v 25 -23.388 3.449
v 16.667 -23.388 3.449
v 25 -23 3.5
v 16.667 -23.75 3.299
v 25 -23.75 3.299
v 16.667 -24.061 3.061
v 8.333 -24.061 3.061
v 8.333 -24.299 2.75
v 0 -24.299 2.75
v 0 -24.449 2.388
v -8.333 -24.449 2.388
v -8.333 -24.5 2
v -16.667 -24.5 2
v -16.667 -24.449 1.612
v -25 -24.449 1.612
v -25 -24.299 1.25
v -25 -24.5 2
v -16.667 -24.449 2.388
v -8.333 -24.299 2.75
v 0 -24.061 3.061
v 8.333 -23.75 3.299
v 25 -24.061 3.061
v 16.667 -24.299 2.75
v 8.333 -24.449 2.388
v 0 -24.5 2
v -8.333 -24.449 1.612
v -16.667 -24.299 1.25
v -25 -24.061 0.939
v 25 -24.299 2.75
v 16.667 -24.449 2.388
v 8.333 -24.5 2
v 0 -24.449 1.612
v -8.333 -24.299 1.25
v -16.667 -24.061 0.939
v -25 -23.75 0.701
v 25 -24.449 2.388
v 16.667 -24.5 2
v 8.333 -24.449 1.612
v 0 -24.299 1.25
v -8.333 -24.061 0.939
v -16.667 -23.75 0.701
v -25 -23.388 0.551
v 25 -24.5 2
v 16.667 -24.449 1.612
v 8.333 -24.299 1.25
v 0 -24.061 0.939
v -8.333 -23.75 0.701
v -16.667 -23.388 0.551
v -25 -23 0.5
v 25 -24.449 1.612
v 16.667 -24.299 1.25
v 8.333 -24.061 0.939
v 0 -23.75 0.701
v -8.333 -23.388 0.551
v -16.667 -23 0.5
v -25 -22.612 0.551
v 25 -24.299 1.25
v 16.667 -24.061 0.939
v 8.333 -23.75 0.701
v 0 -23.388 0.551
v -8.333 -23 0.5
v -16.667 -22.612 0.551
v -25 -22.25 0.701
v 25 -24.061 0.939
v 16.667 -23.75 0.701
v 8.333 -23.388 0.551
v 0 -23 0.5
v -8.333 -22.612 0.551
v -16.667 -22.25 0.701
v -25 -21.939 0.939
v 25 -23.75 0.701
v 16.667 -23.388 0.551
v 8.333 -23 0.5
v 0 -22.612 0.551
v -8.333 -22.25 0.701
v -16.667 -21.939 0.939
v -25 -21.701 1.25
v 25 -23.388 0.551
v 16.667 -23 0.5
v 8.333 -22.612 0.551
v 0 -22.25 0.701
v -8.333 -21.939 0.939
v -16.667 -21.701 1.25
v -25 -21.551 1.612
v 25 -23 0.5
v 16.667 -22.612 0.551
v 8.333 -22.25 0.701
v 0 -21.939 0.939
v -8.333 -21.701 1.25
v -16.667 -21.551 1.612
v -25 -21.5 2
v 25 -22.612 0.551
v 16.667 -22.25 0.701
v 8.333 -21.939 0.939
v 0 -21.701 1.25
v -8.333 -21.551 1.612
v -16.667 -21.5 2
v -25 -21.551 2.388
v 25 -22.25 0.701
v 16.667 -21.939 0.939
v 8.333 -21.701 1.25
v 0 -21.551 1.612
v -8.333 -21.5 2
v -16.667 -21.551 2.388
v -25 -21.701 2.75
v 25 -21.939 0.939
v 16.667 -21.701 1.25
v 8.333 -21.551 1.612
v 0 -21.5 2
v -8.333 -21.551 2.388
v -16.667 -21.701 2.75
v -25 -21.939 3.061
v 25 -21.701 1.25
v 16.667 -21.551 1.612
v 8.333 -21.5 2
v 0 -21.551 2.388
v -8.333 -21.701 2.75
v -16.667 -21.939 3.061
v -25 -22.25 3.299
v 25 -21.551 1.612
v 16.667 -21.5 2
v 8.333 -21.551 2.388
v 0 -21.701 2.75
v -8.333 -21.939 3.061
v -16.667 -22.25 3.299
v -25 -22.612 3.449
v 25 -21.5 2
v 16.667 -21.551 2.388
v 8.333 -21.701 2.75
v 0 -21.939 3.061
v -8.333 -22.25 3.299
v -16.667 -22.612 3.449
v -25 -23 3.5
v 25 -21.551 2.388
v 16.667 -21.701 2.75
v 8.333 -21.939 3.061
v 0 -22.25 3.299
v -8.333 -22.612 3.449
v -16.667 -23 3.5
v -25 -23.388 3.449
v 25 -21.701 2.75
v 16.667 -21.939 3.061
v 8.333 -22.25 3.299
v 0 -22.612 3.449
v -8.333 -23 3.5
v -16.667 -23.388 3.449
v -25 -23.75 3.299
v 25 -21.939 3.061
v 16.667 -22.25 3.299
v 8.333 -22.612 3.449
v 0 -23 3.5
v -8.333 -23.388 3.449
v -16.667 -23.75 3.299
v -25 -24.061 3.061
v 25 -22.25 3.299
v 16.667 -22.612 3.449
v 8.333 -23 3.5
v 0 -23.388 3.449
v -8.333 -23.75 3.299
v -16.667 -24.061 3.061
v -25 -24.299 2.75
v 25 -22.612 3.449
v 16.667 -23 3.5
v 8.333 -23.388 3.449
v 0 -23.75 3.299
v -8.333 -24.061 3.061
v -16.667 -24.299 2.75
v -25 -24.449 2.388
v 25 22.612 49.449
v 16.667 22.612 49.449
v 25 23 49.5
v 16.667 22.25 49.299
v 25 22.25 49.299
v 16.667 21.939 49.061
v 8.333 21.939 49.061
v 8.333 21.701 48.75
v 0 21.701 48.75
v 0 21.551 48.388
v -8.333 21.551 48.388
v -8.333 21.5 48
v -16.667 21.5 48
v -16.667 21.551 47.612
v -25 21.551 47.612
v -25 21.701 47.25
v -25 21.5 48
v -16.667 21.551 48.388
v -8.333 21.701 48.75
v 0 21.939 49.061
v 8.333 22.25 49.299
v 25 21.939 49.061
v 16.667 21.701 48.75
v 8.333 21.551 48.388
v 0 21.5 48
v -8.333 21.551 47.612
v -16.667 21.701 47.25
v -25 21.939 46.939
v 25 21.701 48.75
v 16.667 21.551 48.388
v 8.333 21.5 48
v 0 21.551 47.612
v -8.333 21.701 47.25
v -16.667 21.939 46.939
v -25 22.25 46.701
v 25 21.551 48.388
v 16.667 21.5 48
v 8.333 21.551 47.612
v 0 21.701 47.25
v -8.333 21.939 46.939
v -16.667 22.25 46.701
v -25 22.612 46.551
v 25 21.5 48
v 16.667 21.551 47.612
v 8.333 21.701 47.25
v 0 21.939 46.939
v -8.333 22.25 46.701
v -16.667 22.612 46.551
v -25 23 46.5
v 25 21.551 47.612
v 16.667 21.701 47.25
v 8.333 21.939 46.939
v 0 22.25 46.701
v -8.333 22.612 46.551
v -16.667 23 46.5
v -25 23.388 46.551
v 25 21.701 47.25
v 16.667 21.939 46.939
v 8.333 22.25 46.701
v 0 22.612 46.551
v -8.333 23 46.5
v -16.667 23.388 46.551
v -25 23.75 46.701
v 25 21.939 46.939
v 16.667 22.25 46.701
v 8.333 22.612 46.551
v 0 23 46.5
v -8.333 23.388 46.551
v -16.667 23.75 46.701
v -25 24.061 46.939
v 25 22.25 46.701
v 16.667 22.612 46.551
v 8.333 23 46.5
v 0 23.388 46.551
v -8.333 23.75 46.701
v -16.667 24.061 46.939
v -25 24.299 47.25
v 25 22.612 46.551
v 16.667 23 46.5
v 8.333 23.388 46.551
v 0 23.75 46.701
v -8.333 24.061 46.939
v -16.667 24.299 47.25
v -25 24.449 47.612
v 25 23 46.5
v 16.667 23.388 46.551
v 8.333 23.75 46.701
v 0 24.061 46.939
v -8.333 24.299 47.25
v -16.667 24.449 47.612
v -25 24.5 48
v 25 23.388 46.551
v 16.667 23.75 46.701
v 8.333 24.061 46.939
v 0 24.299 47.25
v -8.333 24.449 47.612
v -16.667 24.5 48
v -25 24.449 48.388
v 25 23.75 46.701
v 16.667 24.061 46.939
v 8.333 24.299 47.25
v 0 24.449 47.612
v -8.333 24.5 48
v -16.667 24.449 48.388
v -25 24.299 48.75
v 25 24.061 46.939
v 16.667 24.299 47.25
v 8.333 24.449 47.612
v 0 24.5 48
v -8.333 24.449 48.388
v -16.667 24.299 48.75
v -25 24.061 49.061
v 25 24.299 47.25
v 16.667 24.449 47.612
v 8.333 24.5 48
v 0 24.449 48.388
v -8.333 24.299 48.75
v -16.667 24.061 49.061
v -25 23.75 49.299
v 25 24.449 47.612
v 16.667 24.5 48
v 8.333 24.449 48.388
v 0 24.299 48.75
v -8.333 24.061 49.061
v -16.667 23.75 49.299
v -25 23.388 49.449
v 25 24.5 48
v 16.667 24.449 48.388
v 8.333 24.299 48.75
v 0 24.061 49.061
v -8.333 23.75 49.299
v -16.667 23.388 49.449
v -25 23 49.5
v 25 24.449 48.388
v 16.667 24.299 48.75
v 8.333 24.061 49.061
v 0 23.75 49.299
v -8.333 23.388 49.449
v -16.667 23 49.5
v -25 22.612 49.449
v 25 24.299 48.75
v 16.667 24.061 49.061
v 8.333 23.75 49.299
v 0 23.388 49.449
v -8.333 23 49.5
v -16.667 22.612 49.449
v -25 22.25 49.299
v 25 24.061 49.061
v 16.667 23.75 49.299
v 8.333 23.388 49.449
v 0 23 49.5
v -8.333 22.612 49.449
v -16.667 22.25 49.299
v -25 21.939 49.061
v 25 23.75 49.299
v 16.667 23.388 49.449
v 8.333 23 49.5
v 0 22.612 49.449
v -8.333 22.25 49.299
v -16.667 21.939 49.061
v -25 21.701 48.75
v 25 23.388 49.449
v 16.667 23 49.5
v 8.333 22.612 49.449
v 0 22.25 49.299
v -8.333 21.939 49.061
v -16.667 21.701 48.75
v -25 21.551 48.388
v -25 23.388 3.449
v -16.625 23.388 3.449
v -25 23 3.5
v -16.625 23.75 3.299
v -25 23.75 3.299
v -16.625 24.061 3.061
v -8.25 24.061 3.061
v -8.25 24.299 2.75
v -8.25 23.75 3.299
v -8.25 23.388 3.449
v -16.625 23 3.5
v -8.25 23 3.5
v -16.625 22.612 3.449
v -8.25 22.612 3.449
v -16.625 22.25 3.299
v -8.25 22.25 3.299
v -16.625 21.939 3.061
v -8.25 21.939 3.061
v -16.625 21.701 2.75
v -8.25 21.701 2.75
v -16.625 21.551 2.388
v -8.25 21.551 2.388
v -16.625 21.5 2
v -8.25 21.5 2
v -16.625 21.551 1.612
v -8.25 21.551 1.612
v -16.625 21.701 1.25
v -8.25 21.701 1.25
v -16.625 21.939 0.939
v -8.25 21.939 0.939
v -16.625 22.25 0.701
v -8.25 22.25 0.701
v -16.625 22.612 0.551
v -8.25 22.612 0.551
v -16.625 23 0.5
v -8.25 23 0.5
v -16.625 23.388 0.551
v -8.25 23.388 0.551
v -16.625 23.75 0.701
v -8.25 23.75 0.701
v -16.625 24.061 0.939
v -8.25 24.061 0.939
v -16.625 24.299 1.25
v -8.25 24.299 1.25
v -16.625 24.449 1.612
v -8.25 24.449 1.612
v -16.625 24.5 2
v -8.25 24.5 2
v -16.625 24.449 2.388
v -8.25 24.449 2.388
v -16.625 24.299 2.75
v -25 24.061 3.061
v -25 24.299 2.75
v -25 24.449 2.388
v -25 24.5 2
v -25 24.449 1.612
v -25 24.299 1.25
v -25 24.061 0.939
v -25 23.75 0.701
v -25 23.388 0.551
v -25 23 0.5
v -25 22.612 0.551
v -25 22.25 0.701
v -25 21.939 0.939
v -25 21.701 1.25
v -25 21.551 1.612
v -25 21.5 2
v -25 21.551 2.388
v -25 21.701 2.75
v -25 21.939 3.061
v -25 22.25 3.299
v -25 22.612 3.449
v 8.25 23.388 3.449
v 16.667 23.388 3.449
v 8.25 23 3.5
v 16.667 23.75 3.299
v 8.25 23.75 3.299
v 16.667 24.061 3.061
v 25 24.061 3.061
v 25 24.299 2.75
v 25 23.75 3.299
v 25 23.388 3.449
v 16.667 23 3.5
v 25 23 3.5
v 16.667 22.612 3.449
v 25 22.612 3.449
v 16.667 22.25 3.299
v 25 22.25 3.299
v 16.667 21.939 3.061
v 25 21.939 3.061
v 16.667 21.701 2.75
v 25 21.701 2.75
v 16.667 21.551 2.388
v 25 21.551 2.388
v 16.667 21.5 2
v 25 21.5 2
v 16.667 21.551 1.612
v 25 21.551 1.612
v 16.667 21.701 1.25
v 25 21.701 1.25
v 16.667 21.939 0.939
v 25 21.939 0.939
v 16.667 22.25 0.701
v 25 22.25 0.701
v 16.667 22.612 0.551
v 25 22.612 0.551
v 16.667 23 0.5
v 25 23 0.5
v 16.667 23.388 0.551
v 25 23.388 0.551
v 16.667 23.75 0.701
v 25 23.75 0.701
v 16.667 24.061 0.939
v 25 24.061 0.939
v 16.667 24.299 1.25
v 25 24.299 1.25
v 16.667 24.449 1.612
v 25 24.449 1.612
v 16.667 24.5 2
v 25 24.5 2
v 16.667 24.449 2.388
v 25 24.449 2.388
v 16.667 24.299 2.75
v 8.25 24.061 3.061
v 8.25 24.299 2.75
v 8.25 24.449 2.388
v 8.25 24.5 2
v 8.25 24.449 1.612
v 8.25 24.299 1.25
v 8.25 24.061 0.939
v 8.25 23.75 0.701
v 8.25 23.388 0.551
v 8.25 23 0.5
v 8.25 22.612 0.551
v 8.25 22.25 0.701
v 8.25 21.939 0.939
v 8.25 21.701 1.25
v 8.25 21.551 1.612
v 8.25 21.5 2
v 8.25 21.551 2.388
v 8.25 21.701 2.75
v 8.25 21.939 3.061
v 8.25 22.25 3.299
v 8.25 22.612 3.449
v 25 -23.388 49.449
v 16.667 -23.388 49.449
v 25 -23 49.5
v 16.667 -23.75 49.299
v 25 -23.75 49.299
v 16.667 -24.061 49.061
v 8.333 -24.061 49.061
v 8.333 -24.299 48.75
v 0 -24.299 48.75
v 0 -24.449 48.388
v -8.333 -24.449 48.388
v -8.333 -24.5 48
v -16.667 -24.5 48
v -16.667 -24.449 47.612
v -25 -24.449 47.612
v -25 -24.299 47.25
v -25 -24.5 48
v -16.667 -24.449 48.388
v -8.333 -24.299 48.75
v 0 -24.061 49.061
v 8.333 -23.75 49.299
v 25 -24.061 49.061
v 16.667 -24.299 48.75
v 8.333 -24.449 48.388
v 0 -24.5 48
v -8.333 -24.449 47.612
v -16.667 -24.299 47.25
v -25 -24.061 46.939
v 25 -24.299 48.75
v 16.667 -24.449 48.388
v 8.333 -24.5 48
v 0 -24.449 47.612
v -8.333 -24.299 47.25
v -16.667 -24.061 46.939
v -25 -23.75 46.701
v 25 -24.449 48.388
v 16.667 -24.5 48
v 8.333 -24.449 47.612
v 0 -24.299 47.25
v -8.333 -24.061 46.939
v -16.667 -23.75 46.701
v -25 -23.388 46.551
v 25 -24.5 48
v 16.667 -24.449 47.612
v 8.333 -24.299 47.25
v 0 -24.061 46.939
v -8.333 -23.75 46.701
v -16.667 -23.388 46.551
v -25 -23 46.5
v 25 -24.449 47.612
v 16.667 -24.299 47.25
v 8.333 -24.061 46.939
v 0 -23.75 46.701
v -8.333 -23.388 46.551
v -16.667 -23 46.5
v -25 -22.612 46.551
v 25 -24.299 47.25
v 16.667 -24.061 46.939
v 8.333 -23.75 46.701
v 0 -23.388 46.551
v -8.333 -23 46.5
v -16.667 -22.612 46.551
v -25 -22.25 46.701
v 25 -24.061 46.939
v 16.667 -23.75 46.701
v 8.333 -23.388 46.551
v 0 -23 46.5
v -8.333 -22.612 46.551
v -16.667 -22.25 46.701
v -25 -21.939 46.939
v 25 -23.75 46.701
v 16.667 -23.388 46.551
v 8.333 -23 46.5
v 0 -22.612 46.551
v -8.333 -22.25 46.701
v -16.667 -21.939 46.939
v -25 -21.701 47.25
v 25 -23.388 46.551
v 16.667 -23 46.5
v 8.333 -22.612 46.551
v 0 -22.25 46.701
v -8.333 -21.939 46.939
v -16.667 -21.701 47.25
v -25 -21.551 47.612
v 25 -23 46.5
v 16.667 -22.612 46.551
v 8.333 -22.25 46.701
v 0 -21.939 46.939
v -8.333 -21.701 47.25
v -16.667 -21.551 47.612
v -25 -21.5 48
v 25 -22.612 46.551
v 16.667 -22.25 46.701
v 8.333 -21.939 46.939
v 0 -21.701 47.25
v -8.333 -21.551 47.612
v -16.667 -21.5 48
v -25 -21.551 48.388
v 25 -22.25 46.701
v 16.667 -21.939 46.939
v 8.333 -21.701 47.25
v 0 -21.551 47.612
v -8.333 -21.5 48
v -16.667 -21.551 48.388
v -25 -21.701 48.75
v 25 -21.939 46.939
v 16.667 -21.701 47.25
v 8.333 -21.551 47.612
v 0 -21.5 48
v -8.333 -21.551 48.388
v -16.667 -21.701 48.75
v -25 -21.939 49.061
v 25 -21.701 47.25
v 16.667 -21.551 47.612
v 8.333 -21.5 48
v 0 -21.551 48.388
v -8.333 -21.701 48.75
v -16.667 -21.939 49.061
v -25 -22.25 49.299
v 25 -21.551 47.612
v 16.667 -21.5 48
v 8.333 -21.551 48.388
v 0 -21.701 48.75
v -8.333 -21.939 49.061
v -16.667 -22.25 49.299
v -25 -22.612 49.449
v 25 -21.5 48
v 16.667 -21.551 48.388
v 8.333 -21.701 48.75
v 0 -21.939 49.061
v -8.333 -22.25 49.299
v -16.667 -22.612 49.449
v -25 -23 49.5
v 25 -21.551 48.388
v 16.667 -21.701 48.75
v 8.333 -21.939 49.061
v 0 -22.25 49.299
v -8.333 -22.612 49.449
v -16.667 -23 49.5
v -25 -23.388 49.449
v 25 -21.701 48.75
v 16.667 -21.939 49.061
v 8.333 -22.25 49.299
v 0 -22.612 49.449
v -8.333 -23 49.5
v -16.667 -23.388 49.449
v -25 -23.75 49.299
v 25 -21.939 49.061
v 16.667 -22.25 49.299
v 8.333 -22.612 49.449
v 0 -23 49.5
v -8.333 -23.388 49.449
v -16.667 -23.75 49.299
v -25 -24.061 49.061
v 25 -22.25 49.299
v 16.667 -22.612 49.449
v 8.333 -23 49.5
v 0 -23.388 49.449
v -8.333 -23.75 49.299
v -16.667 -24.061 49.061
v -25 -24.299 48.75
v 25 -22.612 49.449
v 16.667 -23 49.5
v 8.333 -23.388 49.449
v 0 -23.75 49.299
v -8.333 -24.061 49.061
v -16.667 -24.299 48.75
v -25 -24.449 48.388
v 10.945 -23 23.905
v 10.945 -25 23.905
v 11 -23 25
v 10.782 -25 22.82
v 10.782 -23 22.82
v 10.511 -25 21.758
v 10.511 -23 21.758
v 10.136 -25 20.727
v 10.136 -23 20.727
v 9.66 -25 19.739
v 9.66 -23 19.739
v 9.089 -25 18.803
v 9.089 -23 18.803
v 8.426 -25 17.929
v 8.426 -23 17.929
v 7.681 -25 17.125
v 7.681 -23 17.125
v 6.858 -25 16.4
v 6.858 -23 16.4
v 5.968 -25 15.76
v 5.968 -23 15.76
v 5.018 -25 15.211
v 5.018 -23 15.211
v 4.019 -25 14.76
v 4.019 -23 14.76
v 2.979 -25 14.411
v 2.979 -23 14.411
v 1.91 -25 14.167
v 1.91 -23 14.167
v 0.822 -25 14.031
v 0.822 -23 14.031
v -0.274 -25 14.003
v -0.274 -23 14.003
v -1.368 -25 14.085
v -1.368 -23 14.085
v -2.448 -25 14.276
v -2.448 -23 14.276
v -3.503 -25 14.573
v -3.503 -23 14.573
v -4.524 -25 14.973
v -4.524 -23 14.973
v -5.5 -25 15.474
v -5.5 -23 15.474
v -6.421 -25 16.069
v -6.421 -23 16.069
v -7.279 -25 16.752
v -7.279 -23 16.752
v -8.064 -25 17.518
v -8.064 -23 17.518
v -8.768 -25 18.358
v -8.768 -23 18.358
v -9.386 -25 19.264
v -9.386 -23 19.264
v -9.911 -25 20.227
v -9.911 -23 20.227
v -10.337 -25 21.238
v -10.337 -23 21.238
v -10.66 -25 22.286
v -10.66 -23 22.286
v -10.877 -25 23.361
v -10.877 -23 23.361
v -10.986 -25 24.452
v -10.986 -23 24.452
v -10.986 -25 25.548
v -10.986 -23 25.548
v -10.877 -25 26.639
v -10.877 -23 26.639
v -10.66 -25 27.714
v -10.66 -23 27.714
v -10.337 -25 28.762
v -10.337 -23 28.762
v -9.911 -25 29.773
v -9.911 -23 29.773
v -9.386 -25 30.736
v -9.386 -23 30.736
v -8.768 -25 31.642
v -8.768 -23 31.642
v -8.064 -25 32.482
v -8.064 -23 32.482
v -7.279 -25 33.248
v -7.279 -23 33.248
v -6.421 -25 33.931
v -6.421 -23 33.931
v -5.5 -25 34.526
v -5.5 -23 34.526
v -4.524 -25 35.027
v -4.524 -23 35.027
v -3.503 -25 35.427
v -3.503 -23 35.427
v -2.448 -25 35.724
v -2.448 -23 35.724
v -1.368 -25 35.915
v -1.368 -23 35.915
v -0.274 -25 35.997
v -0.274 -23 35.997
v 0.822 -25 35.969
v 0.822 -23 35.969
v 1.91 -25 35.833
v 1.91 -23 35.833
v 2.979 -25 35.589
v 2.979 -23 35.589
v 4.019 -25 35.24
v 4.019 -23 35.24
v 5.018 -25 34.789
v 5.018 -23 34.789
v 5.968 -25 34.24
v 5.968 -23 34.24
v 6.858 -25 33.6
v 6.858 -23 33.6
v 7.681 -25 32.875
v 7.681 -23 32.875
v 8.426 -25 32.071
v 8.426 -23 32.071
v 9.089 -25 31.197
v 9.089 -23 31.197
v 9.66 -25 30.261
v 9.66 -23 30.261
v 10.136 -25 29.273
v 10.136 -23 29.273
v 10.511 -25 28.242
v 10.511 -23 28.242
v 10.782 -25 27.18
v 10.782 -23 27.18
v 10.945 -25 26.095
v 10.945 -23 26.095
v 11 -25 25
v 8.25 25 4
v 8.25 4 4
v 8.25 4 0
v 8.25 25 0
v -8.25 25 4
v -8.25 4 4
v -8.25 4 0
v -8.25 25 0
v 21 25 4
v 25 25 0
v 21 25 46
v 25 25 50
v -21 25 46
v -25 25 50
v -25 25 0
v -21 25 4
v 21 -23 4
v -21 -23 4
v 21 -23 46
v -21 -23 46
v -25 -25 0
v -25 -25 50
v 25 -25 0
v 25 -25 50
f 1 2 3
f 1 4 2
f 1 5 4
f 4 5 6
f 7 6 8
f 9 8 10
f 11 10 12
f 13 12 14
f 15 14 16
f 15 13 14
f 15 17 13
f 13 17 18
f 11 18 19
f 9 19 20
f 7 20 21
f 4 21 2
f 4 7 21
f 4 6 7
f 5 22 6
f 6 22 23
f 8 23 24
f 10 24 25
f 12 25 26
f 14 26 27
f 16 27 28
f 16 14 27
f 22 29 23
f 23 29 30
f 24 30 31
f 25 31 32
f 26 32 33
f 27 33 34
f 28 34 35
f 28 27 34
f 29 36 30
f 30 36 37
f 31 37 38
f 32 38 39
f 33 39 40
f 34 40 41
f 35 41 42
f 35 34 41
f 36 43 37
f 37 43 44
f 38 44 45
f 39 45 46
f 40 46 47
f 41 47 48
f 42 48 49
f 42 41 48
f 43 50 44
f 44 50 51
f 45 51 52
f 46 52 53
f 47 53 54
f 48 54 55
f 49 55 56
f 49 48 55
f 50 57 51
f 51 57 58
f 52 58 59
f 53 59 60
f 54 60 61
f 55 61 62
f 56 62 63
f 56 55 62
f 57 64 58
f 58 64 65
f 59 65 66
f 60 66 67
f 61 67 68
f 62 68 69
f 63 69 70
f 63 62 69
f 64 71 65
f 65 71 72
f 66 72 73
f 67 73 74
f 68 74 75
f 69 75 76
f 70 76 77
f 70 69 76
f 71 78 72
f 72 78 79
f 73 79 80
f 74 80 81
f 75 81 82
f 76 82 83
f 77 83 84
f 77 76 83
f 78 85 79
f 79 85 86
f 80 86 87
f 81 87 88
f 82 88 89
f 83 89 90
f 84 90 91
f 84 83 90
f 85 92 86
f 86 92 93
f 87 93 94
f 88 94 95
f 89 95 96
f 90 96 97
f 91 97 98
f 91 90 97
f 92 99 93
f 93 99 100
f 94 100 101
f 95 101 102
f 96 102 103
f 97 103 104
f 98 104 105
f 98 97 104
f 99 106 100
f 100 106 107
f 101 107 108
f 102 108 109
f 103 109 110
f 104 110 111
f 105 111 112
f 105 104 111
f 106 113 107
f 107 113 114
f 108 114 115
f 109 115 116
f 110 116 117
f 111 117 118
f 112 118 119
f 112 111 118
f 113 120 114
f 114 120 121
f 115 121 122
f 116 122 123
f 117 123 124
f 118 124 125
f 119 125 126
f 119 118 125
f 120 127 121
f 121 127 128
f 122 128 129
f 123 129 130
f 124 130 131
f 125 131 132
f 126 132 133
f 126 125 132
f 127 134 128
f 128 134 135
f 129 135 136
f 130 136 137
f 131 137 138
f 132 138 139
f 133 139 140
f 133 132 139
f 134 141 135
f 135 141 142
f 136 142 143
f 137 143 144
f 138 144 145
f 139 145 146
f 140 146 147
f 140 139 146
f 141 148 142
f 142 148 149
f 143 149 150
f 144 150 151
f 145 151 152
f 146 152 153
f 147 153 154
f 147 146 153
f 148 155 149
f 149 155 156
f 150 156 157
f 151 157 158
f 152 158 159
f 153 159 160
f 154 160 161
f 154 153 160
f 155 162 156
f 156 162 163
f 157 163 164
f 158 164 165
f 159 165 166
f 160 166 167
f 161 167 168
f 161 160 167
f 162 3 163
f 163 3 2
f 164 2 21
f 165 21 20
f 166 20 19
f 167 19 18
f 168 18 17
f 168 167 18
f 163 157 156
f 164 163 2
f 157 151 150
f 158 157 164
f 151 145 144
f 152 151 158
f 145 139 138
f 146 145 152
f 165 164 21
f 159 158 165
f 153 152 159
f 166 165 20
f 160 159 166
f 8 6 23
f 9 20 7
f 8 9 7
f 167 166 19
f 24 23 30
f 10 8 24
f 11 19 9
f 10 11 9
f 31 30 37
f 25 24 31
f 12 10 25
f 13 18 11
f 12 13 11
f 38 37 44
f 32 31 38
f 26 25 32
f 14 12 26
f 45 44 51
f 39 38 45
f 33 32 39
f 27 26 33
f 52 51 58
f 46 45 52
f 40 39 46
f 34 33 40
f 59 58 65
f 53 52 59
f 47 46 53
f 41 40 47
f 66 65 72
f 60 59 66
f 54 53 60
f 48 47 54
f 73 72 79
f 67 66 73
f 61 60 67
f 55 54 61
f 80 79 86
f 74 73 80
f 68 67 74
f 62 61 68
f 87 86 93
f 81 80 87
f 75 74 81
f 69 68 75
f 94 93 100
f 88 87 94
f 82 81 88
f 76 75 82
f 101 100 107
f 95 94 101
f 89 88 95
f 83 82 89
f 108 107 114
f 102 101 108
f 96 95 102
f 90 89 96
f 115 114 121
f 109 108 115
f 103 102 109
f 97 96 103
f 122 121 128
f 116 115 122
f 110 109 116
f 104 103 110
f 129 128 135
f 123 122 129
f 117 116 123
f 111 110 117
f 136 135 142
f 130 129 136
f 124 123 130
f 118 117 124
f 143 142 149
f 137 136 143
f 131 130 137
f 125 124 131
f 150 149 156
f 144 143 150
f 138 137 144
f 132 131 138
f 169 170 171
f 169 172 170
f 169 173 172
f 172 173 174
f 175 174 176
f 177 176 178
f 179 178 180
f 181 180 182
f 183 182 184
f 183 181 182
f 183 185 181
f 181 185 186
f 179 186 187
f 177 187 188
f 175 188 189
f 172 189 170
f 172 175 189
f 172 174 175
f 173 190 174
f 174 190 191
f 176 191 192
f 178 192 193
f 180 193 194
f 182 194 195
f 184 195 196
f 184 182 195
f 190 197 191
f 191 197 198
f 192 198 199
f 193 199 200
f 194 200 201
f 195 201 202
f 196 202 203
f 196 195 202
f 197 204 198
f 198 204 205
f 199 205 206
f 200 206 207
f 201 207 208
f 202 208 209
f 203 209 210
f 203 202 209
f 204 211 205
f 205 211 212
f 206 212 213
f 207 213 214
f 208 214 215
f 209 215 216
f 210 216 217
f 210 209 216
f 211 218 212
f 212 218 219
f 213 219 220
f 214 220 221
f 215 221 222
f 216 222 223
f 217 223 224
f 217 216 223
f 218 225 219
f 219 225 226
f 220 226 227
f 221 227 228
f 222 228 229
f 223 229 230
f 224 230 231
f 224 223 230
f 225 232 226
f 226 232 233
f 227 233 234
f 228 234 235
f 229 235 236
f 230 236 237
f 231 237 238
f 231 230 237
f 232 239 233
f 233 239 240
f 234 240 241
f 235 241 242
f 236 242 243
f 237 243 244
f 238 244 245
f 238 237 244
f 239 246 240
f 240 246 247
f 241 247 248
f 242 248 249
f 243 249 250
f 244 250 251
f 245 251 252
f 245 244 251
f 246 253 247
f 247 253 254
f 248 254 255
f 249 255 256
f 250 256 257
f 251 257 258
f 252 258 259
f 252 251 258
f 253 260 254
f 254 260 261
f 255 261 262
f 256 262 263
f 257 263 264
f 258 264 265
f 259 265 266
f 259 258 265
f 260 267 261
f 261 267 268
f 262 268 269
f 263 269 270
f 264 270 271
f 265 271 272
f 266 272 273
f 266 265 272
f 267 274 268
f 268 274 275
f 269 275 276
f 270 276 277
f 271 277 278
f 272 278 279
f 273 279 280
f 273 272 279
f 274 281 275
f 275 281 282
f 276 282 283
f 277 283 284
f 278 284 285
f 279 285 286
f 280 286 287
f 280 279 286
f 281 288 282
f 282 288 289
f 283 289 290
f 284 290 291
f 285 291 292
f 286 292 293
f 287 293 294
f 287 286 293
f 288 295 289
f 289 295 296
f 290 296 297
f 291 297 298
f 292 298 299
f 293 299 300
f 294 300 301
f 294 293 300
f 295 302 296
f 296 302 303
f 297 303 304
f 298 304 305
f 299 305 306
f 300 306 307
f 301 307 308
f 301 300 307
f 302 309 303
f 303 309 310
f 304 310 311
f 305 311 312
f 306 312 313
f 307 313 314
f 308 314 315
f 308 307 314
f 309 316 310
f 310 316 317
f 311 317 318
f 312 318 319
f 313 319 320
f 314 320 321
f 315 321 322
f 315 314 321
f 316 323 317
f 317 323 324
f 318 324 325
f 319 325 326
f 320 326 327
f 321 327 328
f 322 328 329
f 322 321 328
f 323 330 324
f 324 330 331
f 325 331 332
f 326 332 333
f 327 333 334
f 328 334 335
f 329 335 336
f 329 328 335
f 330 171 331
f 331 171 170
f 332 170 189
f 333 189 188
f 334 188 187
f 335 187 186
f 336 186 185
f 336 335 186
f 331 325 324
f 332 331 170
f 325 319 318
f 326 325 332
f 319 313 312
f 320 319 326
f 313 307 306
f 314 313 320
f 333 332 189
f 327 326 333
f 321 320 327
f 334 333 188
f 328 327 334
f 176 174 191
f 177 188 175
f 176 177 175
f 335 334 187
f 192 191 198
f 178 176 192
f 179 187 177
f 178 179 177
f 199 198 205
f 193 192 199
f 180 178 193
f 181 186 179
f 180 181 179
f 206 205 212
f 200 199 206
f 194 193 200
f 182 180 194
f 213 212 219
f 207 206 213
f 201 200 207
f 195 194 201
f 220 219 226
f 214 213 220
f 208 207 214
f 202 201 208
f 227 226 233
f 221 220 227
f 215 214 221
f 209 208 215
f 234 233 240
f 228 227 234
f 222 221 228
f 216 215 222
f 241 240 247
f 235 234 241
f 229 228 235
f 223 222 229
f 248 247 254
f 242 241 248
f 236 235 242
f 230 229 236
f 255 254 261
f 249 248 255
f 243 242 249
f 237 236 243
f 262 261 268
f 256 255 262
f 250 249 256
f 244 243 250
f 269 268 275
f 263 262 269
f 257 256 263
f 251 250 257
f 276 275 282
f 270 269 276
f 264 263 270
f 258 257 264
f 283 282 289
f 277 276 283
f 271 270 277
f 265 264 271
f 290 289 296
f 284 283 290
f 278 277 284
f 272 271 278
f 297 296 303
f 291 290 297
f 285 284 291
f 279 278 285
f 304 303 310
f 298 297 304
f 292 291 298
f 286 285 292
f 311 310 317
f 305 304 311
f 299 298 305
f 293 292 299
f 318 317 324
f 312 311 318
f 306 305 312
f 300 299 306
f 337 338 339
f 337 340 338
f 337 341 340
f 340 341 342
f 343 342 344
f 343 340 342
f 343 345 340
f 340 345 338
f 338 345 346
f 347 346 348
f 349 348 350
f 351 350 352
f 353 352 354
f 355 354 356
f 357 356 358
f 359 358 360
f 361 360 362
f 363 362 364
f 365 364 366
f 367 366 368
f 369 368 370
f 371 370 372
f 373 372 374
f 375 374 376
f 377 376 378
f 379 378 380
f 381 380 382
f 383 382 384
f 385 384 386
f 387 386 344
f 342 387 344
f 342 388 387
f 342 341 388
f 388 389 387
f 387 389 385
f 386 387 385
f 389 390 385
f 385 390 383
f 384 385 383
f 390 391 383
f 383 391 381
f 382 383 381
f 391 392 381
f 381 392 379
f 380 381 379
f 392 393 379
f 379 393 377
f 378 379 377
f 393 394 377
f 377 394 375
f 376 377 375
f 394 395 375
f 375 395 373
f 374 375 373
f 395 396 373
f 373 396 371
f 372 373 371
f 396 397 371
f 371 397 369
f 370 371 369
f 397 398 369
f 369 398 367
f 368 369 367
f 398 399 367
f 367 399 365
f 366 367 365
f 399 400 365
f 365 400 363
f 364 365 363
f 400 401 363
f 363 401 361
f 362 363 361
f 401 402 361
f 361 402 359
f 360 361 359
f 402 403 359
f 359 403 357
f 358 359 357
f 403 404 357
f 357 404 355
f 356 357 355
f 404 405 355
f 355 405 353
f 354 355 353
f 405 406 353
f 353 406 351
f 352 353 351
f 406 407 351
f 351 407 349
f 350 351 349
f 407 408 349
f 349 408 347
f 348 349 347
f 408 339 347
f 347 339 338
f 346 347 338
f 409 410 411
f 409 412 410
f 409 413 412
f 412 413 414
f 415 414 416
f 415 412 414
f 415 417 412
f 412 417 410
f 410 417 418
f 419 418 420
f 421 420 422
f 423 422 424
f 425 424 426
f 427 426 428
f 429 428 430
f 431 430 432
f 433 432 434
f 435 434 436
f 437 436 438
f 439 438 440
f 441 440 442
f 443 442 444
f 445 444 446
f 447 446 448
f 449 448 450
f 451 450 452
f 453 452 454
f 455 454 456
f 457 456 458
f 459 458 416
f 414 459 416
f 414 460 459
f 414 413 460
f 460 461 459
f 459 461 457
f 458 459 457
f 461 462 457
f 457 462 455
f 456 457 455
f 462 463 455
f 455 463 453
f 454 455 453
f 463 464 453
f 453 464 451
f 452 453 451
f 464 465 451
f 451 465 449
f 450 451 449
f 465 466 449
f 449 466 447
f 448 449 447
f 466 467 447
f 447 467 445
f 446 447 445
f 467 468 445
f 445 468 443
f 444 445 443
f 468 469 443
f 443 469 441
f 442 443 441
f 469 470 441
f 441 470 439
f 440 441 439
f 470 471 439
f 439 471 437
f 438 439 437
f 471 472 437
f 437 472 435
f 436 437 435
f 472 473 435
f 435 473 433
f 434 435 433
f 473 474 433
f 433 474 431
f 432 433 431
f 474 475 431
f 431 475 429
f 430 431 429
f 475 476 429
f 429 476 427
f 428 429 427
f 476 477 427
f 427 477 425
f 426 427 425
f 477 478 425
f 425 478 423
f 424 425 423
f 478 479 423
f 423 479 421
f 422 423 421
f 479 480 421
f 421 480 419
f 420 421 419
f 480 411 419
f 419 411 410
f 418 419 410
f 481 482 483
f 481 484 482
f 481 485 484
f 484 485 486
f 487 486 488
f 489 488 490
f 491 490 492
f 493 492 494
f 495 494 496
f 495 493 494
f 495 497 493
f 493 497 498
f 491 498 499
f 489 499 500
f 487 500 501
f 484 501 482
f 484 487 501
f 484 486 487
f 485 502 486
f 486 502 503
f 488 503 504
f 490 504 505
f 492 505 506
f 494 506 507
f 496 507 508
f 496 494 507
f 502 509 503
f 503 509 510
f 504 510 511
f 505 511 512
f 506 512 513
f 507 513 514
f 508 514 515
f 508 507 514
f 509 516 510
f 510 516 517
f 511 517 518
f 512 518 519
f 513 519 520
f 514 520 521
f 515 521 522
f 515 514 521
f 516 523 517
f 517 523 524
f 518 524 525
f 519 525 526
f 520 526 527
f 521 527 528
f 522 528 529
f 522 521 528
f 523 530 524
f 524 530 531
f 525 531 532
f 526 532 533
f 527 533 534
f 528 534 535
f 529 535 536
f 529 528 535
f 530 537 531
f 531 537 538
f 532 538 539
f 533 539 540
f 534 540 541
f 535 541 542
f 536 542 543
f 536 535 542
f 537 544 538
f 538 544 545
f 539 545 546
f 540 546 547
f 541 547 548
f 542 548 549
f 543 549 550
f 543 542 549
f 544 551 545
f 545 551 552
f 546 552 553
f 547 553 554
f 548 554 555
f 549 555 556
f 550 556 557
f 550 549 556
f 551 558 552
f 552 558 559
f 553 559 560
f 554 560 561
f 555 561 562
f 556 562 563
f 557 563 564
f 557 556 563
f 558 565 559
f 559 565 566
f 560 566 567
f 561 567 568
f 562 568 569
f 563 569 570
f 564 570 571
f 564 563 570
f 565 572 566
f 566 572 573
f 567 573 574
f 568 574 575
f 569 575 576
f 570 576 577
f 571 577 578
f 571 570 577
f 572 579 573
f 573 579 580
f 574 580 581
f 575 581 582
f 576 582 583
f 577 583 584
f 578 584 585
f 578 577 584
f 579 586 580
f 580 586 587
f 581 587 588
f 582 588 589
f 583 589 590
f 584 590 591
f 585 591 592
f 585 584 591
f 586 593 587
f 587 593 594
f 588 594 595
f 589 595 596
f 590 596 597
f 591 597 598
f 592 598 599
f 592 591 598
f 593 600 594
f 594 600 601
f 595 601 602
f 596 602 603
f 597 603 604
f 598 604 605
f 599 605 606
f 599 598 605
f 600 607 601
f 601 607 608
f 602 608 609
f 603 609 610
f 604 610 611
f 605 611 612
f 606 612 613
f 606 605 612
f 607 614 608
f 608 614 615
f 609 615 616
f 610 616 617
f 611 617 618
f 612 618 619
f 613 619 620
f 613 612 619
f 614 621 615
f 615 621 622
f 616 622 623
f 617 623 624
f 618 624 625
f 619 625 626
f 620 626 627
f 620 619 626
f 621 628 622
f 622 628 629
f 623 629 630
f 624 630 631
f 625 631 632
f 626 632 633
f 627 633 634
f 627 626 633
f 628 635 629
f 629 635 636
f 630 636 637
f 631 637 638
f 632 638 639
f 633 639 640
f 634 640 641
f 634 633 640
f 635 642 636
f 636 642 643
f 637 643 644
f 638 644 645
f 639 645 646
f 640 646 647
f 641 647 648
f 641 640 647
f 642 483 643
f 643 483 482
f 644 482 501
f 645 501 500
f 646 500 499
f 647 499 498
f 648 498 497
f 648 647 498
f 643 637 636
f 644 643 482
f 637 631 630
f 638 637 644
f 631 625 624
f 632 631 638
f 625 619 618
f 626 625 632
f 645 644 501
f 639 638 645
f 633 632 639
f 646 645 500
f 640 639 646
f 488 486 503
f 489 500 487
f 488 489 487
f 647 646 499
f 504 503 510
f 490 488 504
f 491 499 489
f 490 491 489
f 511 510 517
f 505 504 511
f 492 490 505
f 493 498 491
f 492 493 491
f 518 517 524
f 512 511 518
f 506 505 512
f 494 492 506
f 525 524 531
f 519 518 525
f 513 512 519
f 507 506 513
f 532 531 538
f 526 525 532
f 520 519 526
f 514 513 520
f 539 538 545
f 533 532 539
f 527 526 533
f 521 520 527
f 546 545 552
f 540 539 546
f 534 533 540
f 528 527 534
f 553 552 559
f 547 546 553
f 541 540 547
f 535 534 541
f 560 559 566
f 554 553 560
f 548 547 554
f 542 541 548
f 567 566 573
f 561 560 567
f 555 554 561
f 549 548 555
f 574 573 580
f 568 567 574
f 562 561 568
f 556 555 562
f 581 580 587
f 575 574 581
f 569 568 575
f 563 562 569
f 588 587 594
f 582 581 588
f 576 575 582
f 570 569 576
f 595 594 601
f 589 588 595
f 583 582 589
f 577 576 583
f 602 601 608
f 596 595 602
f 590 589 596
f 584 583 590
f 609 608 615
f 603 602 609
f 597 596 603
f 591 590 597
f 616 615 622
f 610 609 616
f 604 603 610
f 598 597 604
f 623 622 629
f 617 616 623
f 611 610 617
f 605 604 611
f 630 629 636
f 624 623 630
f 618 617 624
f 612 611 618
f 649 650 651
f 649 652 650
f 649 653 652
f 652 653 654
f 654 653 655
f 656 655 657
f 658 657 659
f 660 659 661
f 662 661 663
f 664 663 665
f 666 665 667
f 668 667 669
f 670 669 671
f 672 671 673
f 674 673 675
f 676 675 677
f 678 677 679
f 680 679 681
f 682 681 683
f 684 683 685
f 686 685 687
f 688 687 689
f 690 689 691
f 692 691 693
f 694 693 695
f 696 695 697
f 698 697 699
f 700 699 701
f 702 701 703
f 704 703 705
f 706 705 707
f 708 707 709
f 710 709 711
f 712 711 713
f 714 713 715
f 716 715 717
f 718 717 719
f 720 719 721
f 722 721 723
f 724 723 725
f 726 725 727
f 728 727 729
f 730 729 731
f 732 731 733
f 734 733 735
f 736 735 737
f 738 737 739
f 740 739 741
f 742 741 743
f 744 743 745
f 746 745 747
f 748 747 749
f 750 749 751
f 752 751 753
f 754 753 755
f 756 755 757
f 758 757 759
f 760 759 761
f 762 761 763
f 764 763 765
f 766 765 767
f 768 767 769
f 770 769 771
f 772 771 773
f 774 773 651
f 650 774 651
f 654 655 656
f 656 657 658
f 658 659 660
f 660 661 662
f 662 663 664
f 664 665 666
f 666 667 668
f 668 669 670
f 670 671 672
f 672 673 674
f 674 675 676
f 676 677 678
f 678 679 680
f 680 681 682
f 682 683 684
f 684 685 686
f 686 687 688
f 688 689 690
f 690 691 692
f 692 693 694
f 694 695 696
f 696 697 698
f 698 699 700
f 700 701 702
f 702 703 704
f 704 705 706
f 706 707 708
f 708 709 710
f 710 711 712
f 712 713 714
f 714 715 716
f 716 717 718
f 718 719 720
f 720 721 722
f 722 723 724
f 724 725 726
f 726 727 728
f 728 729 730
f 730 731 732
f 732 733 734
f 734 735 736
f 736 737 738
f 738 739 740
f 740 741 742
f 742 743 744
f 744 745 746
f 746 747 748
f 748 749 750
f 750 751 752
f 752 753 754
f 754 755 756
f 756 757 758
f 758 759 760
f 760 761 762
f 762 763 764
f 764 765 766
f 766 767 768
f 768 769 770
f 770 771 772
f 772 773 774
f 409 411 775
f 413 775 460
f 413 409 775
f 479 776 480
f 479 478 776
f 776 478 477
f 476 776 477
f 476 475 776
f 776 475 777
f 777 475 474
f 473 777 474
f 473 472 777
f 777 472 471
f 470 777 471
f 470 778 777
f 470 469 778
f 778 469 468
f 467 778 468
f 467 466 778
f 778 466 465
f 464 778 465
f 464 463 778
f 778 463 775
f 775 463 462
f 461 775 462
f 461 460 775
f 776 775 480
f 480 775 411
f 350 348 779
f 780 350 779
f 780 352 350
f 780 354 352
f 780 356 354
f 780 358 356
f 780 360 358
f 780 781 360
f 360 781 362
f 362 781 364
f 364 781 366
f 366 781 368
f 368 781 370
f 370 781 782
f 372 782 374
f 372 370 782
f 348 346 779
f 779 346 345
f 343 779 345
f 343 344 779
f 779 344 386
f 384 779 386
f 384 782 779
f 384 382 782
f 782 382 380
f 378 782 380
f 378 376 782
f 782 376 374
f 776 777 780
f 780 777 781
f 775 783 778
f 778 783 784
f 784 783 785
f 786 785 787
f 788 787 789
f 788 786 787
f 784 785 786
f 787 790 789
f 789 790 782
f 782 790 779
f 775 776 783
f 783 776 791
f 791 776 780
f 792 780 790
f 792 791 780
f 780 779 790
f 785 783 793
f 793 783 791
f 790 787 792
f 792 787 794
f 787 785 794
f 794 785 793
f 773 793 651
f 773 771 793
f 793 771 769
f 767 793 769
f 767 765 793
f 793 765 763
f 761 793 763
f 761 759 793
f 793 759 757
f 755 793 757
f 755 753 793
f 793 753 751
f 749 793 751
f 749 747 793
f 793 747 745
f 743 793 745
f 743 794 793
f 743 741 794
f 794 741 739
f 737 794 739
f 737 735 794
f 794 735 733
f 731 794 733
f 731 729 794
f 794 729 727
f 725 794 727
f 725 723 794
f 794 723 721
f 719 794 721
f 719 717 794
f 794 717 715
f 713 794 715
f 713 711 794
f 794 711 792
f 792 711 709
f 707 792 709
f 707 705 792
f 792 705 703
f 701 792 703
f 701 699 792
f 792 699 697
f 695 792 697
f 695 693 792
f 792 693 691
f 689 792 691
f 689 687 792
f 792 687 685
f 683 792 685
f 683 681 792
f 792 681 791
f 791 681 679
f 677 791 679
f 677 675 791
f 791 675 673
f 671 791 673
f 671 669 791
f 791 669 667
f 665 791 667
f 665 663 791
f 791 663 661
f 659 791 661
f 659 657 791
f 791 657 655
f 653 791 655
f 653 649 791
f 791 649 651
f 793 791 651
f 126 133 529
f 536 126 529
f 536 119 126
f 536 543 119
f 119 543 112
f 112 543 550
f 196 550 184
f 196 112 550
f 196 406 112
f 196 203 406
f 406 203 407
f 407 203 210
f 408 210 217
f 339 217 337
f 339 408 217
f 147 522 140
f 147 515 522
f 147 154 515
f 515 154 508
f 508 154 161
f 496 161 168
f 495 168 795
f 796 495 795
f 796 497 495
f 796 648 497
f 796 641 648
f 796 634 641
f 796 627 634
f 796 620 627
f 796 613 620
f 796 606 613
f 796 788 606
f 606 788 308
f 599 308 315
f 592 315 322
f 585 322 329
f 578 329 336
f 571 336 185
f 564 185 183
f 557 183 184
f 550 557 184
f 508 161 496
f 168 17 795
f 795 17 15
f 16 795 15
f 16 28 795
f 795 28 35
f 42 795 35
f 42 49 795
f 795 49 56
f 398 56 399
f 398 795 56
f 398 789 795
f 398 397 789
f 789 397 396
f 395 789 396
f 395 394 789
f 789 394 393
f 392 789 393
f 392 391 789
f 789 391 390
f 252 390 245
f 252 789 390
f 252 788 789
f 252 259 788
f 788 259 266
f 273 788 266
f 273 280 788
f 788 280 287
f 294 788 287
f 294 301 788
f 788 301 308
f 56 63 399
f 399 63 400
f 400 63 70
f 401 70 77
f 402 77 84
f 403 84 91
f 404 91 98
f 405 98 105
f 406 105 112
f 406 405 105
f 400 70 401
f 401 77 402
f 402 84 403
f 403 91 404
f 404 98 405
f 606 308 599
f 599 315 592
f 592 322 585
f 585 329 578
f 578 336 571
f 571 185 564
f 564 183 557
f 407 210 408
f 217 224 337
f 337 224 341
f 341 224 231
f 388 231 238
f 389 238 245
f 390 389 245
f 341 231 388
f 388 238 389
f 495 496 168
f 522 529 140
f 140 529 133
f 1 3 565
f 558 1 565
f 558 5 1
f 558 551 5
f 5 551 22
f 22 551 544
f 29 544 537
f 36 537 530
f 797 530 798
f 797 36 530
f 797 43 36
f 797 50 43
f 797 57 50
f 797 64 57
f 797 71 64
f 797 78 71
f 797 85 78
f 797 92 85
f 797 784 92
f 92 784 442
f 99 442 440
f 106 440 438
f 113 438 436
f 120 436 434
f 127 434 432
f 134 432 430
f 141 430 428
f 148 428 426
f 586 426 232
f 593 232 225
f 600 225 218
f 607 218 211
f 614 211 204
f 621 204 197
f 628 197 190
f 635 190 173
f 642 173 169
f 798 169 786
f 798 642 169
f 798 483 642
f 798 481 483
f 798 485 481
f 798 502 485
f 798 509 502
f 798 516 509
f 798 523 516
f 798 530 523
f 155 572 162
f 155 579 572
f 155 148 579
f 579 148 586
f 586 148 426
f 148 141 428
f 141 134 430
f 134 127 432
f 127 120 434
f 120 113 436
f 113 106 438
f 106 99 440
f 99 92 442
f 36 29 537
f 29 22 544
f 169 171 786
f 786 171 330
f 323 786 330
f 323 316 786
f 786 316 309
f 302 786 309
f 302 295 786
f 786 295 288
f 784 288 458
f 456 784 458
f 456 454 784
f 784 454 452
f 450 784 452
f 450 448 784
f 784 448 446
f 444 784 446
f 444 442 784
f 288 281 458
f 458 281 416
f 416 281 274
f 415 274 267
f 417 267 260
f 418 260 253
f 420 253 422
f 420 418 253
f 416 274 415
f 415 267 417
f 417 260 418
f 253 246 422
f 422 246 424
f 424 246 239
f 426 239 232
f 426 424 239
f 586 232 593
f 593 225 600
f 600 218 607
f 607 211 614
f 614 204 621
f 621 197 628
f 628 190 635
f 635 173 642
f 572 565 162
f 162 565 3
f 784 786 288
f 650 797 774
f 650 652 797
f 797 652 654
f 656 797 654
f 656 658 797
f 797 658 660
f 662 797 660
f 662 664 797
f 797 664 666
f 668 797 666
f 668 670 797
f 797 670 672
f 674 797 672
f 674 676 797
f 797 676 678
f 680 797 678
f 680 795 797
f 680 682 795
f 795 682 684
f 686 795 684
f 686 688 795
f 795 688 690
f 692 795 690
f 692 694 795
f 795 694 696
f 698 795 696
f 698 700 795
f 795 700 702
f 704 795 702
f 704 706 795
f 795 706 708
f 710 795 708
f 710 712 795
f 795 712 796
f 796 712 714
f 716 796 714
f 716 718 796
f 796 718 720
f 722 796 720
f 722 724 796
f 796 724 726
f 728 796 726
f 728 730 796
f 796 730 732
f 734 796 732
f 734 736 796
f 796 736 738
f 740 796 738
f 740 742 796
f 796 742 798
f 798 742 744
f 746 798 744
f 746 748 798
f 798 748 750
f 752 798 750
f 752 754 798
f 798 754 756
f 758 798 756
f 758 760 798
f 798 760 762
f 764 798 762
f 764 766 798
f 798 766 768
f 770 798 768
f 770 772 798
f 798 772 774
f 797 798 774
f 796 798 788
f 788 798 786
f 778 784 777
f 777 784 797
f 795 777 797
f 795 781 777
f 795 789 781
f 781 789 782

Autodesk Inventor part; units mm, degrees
ref_plane "YZ Plane" through (0, 0, 0) normal (1, 0, 0) x (0, 1, 0)
ref_plane "XZ Plane" through (0, 0, 0) normal (0, 1, 0) x (-1, 0, 0)
ref_plane "XY Plane" through (0, 0, 0) normal (0, 0, 1) x (1, 0, 0)
sketch "Sketch1" plane through (0, 0, 0) normal (0, 0, 1) x (1, 0, 0)
  line L0 (-25, -25) -> (25, -25)
  line L1 (25, -25) -> (25, 25)
  line L2 (25, 25) -> (-25, 25)
  line L3 (-25, 25) -> (-25, -25)
  line L4 (-25, -25) -> (25, 25) construction
  line L5 (25, -25) -> (-25, 25) construction
  point P0 (0, 0)
  dimension "d0" = 50
  dimension "d1" = 50
extrude "Main Block" add sketch "Sketch1" along normal blind 50
sketch "Sketch2" plane through (-25, 25, 0) normal (0, 1, 0) x (1, 0, 0)
  line L0 (0, -50) -> (50, -50) construction
  line L1 (0, 0) -> (50, 0) construction
  line L2 (50, -50) -> (0, 0) construction
  line L3 (46, -46) -> (4, -46)
  line L4 (4, -46) -> (4, -4)
  line L5 (4, -4) -> (46, -4)
  line L6 (46, -4) -> (46, -46)
  line L7 (46, -46) -> (4, -4) construction
  line L8 (4, -46) -> (46, -4) construction
  line L9 (25, -25) -> (25, -46) construction
  point P0 (25, 0)
  dimension "d4" = 42
  dimension "d5" = 42
extrude "Motor Void" cut sketch "Sketch2" against normal blind 48
sketch "Sketch3" plane through (-25, 25, 0) normal (0, 1, 0) x (1, 0, 0)
  line L0 (25, 0) -> (25, -4) construction
  line L1 (4, -4) -> (46, -4) construction
  line L2 (16.75, -4) -> (33.25, -4)
  line L3 (33.25, -4) -> (33.25, 0)
  line L4 (33.25, 0) -> (16.75, 0)
  line L5 (16.75, 0) -> (16.75, -4)
  line L6 (16.75, -4) -> (33.25, 0) construction
  line L7 (33.25, -4) -> (16.75, 0) construction
  point P0 (25, -2)
  dimension "d8" = 16.5
  dimension "d9" = 4
extrude "Cable Void" cut sketch "Sketch3" against normal blind 21
sketch "Sketch4" plane through (-25, -25, 0) normal (0, -1, 0) x (1, 0, 0)
  line L0 (0, 0) -> (0, 50) construction
  line L1 (50, 50) -> (0, 50) construction
  line L2 (0, 0) -> (50, 50) construction
  circle A0 centre (25, 25) radius 11
  point P0 (25, 0)
  dimension "d12" = 22
extrude "Raised Void" cut sketch "Sketch4" against normal blind 2
sketch "Sketch5" plane through (-25, -25, 0) normal (-1, 0, 0) x (0, 0, 1)
  line L0 (0, 0) -> (0, 50) construction
  line L1 (4, 50) -> (4, 2) construction
  line L2 (0, 50) -> (4, 50) construction
  line L3 (0, 50) -> (50, 50) construction
  line L4 (46, 2) -> (4, 2) construction
  line L5 (4, 50) -> (4, 2) construction
  line L6 (4, 2) -> (46, 2) construction
  line L7 (46, 50) -> (46, 2) construction
  line L8 (46, 2) -> (46, 50) construction
  line L9 (50, 0) -> (50, 50) construction
  line L10 (46, 50) -> (50, 50) construction
  line L11 (50, 50) -> (48, 50) construction
  line L12 (48, 50) -> (48, 48) construction
  circle A0 centre (48, 48) radius 1.5
  line L13 (48, 0) -> (48, 2) construction
  line L14 (48, 0) -> (50, 0) construction
  line L15 (0, 50) -> (4, 50) construction
  line L16 (2, 50) -> (2, 48) construction
  line L17 (0, 0) -> (50, 0) construction
  line L18 (2, 0) -> (2, 2) construction
  line L19 (2, 0) -> (4, 0) construction
  circle A1 centre (2, 48) radius 1.5
  circle A2 centre (2, 2) radius 1.5
  circle A3 centre (48, 2) radius 1.5
  point P0 (0, 25)
  dimension "d15" = 2
  dimension "d16" = 3
  dimension "d17" = 2
  dimension "d18" = 90
  dimension "d19" = 2
  dimension "d20" = 2
  dimension "d21" = 90
  dimension "d22" = 3
  dimension "d23" = 3
  dimension "d24" = 3
  dimension "d25" = 2
  dimension "d26" = 48
  dimension "d27" = 2
extrude "Extrusion5" cut sketch "Sketch5" against normal blind 50
properties part number "50x50Motor"
